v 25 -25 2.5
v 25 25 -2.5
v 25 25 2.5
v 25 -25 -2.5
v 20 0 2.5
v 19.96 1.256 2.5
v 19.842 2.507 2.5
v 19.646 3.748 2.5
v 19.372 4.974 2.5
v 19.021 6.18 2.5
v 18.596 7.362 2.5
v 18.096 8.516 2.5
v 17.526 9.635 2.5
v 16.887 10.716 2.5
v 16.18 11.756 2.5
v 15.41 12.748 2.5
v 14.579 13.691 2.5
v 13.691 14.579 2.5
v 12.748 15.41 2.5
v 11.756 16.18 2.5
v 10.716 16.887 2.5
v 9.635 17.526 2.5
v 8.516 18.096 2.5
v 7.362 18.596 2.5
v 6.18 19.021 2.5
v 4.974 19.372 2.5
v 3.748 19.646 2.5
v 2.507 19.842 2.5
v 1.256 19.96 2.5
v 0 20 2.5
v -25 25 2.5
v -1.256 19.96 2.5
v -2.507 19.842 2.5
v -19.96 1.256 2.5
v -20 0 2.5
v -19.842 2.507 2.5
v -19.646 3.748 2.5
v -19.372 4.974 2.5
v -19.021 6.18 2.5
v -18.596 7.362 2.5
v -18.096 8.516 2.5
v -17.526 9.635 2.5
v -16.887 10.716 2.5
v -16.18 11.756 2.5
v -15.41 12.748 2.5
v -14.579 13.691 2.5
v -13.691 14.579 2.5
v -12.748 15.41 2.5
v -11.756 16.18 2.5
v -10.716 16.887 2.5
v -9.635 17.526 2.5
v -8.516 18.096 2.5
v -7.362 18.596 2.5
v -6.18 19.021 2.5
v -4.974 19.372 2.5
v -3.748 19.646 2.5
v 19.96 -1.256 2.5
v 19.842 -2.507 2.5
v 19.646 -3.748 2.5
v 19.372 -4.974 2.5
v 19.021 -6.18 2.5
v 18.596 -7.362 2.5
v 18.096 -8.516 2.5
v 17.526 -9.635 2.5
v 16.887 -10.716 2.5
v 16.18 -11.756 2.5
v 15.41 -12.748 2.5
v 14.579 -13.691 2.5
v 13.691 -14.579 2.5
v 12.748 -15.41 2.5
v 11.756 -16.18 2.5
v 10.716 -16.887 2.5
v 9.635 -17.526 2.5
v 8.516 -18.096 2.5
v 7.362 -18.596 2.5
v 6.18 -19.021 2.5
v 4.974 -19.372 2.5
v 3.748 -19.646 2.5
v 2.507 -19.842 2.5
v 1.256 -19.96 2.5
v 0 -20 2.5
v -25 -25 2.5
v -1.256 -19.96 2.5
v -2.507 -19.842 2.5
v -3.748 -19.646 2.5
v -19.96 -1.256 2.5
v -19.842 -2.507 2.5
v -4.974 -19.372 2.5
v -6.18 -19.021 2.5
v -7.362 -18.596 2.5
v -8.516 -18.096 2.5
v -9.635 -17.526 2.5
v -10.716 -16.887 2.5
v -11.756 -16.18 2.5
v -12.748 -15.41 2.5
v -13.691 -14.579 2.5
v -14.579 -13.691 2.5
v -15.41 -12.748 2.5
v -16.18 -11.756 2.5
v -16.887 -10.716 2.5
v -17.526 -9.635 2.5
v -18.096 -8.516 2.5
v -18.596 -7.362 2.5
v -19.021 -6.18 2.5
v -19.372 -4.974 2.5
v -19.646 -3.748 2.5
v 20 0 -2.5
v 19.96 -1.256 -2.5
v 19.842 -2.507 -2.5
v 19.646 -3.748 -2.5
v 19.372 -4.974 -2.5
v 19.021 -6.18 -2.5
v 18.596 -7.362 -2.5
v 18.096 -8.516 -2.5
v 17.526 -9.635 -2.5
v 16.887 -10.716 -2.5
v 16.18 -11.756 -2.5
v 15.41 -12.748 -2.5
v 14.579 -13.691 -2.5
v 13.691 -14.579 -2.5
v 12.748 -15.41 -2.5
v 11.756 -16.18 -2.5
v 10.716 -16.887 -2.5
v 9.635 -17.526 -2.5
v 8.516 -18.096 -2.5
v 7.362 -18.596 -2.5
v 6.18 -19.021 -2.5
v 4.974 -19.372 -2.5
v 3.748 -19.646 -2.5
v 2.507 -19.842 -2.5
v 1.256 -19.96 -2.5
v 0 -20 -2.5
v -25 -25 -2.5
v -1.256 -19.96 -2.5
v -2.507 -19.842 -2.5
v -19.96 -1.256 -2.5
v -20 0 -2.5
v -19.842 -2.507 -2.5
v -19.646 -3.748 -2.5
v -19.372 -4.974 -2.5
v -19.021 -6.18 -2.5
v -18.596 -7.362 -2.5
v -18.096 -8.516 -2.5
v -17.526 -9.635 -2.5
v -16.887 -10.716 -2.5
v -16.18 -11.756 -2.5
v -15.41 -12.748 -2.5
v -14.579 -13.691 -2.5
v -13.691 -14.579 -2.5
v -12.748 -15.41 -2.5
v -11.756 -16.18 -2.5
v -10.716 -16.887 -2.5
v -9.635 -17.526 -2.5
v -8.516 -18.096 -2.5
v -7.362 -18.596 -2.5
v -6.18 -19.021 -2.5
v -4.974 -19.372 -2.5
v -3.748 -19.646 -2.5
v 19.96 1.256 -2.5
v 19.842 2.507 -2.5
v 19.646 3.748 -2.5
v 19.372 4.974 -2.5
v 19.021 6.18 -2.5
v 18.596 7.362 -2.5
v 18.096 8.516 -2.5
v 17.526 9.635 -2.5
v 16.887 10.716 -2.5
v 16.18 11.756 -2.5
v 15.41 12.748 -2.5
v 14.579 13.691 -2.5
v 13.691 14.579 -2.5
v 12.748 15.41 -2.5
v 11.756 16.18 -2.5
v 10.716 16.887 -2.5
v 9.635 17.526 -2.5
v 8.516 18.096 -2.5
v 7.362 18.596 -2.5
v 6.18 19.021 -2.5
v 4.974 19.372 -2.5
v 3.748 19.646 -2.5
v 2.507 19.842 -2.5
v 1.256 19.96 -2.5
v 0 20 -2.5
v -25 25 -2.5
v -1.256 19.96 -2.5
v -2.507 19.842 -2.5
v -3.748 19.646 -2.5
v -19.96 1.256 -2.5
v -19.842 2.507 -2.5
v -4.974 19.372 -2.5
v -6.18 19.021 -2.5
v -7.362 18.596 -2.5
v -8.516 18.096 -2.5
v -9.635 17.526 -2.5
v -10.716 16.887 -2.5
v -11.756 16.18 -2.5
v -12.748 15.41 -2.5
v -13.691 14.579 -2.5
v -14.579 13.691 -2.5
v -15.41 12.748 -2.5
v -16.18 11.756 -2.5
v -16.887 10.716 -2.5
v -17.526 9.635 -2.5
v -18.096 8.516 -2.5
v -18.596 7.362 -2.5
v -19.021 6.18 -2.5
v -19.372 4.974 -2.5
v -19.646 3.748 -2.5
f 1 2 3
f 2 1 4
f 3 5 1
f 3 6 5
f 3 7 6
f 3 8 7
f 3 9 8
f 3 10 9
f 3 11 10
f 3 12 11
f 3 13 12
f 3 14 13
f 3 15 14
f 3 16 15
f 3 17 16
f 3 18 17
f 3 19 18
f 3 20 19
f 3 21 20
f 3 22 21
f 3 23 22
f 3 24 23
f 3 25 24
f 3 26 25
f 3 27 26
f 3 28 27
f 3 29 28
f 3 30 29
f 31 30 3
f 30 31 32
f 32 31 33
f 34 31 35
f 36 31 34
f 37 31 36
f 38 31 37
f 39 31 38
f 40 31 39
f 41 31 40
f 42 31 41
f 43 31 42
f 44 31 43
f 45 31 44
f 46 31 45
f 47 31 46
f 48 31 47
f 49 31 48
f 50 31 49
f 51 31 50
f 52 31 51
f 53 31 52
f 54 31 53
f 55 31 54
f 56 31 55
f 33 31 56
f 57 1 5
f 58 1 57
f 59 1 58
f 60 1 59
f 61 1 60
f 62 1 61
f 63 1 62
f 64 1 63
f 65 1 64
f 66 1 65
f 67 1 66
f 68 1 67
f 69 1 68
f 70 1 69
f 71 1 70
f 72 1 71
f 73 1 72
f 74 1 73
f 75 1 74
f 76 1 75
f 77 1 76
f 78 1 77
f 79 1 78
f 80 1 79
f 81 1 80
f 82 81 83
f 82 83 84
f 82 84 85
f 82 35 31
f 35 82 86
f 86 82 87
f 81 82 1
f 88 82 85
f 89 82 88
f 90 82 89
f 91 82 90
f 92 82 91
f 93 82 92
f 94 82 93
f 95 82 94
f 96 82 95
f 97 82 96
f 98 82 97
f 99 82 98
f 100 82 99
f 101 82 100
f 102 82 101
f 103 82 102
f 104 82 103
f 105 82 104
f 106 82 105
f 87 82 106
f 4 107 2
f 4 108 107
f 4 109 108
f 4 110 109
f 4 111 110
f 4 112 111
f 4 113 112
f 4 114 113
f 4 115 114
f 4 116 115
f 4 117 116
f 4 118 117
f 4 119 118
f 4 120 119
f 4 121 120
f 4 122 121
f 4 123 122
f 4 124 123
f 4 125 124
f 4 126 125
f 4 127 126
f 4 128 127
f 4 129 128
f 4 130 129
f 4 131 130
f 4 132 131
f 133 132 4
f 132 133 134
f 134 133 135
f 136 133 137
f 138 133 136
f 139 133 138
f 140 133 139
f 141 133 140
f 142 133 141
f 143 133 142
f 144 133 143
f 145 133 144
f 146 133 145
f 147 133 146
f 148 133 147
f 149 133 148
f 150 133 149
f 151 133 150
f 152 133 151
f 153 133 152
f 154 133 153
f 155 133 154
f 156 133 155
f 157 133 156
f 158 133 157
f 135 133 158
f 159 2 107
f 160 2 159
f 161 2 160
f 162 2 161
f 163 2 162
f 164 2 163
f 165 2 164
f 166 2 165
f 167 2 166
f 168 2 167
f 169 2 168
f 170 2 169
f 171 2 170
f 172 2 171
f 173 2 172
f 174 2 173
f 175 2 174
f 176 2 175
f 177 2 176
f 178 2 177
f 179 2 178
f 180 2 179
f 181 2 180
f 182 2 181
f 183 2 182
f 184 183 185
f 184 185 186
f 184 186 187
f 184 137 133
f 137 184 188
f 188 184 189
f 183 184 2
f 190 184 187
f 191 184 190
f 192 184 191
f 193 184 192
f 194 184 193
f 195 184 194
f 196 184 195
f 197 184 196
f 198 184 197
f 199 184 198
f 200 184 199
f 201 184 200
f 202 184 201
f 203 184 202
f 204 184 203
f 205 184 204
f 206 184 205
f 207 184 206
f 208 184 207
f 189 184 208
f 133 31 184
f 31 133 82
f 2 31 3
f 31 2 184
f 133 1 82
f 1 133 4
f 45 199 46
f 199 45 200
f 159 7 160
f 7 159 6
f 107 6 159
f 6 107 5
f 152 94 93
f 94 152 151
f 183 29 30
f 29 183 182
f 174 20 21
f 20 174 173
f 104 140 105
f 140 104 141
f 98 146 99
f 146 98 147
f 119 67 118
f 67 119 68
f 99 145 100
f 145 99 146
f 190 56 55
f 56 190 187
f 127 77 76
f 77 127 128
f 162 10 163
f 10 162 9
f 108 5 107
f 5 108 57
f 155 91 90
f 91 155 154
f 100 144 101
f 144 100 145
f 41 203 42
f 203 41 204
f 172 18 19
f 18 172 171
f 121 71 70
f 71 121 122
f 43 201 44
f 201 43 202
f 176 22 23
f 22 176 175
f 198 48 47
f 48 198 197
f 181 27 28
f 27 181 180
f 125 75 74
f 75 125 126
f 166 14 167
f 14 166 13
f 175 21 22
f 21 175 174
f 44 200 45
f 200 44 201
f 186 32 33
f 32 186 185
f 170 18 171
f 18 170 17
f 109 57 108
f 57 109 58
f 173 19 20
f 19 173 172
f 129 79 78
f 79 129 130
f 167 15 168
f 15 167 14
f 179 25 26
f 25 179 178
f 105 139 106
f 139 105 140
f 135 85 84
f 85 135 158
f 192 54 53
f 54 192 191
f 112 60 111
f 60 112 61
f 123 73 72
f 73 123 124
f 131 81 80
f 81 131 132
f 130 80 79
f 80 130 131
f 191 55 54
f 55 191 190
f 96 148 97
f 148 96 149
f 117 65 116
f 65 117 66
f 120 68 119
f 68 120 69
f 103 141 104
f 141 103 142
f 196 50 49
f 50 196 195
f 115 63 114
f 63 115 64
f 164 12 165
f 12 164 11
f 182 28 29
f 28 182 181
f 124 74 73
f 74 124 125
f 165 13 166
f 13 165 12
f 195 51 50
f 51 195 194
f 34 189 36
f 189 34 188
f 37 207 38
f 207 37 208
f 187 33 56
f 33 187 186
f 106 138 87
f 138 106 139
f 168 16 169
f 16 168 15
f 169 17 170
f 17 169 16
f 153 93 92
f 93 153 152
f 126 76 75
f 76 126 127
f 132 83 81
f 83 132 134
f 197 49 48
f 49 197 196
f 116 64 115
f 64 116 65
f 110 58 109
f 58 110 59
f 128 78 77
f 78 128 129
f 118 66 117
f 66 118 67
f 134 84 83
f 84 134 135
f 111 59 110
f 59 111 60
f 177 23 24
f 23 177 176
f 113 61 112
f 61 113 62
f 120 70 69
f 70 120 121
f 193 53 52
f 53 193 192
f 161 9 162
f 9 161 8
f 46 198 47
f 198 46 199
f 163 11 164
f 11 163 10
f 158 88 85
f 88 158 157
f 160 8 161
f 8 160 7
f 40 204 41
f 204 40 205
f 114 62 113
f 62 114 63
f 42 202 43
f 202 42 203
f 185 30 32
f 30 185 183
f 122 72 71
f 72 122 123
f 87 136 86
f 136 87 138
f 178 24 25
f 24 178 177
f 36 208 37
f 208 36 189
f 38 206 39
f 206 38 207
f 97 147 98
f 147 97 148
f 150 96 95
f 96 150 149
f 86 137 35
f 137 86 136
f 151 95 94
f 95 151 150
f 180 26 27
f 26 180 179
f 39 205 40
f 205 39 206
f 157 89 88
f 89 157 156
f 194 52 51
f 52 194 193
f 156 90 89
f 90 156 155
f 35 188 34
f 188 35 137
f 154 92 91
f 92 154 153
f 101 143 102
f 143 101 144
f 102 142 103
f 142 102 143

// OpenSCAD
// Parameters
plate_size = 50; // Length of the square plate (in mm)
plate_thickness = 5; // Thickness of the plate (in mm)
hole_diameter = 40; // Updated diameter of the central circular hole (in mm)
hole_edge_smoothness = 2; // Radius for smoothing the edges of the hole (in mm)

// Main module
module square_plate_with_hole() {
    // Create the square plate
    difference() {
        cube([plate_size, plate_size, plate_thickness], center=true); // Square plate
        
        // Create a smoothed circular hole
        translate([0, 0, -hole_edge_smoothness]) {
            cylinder(d=hole_diameter, h=plate_thickness + 2 * hole_edge_smoothness, center=true, $fn=100); // Smoothed central circular hole
        }
    }
}

// Render the model
square_plate_with_hole();
